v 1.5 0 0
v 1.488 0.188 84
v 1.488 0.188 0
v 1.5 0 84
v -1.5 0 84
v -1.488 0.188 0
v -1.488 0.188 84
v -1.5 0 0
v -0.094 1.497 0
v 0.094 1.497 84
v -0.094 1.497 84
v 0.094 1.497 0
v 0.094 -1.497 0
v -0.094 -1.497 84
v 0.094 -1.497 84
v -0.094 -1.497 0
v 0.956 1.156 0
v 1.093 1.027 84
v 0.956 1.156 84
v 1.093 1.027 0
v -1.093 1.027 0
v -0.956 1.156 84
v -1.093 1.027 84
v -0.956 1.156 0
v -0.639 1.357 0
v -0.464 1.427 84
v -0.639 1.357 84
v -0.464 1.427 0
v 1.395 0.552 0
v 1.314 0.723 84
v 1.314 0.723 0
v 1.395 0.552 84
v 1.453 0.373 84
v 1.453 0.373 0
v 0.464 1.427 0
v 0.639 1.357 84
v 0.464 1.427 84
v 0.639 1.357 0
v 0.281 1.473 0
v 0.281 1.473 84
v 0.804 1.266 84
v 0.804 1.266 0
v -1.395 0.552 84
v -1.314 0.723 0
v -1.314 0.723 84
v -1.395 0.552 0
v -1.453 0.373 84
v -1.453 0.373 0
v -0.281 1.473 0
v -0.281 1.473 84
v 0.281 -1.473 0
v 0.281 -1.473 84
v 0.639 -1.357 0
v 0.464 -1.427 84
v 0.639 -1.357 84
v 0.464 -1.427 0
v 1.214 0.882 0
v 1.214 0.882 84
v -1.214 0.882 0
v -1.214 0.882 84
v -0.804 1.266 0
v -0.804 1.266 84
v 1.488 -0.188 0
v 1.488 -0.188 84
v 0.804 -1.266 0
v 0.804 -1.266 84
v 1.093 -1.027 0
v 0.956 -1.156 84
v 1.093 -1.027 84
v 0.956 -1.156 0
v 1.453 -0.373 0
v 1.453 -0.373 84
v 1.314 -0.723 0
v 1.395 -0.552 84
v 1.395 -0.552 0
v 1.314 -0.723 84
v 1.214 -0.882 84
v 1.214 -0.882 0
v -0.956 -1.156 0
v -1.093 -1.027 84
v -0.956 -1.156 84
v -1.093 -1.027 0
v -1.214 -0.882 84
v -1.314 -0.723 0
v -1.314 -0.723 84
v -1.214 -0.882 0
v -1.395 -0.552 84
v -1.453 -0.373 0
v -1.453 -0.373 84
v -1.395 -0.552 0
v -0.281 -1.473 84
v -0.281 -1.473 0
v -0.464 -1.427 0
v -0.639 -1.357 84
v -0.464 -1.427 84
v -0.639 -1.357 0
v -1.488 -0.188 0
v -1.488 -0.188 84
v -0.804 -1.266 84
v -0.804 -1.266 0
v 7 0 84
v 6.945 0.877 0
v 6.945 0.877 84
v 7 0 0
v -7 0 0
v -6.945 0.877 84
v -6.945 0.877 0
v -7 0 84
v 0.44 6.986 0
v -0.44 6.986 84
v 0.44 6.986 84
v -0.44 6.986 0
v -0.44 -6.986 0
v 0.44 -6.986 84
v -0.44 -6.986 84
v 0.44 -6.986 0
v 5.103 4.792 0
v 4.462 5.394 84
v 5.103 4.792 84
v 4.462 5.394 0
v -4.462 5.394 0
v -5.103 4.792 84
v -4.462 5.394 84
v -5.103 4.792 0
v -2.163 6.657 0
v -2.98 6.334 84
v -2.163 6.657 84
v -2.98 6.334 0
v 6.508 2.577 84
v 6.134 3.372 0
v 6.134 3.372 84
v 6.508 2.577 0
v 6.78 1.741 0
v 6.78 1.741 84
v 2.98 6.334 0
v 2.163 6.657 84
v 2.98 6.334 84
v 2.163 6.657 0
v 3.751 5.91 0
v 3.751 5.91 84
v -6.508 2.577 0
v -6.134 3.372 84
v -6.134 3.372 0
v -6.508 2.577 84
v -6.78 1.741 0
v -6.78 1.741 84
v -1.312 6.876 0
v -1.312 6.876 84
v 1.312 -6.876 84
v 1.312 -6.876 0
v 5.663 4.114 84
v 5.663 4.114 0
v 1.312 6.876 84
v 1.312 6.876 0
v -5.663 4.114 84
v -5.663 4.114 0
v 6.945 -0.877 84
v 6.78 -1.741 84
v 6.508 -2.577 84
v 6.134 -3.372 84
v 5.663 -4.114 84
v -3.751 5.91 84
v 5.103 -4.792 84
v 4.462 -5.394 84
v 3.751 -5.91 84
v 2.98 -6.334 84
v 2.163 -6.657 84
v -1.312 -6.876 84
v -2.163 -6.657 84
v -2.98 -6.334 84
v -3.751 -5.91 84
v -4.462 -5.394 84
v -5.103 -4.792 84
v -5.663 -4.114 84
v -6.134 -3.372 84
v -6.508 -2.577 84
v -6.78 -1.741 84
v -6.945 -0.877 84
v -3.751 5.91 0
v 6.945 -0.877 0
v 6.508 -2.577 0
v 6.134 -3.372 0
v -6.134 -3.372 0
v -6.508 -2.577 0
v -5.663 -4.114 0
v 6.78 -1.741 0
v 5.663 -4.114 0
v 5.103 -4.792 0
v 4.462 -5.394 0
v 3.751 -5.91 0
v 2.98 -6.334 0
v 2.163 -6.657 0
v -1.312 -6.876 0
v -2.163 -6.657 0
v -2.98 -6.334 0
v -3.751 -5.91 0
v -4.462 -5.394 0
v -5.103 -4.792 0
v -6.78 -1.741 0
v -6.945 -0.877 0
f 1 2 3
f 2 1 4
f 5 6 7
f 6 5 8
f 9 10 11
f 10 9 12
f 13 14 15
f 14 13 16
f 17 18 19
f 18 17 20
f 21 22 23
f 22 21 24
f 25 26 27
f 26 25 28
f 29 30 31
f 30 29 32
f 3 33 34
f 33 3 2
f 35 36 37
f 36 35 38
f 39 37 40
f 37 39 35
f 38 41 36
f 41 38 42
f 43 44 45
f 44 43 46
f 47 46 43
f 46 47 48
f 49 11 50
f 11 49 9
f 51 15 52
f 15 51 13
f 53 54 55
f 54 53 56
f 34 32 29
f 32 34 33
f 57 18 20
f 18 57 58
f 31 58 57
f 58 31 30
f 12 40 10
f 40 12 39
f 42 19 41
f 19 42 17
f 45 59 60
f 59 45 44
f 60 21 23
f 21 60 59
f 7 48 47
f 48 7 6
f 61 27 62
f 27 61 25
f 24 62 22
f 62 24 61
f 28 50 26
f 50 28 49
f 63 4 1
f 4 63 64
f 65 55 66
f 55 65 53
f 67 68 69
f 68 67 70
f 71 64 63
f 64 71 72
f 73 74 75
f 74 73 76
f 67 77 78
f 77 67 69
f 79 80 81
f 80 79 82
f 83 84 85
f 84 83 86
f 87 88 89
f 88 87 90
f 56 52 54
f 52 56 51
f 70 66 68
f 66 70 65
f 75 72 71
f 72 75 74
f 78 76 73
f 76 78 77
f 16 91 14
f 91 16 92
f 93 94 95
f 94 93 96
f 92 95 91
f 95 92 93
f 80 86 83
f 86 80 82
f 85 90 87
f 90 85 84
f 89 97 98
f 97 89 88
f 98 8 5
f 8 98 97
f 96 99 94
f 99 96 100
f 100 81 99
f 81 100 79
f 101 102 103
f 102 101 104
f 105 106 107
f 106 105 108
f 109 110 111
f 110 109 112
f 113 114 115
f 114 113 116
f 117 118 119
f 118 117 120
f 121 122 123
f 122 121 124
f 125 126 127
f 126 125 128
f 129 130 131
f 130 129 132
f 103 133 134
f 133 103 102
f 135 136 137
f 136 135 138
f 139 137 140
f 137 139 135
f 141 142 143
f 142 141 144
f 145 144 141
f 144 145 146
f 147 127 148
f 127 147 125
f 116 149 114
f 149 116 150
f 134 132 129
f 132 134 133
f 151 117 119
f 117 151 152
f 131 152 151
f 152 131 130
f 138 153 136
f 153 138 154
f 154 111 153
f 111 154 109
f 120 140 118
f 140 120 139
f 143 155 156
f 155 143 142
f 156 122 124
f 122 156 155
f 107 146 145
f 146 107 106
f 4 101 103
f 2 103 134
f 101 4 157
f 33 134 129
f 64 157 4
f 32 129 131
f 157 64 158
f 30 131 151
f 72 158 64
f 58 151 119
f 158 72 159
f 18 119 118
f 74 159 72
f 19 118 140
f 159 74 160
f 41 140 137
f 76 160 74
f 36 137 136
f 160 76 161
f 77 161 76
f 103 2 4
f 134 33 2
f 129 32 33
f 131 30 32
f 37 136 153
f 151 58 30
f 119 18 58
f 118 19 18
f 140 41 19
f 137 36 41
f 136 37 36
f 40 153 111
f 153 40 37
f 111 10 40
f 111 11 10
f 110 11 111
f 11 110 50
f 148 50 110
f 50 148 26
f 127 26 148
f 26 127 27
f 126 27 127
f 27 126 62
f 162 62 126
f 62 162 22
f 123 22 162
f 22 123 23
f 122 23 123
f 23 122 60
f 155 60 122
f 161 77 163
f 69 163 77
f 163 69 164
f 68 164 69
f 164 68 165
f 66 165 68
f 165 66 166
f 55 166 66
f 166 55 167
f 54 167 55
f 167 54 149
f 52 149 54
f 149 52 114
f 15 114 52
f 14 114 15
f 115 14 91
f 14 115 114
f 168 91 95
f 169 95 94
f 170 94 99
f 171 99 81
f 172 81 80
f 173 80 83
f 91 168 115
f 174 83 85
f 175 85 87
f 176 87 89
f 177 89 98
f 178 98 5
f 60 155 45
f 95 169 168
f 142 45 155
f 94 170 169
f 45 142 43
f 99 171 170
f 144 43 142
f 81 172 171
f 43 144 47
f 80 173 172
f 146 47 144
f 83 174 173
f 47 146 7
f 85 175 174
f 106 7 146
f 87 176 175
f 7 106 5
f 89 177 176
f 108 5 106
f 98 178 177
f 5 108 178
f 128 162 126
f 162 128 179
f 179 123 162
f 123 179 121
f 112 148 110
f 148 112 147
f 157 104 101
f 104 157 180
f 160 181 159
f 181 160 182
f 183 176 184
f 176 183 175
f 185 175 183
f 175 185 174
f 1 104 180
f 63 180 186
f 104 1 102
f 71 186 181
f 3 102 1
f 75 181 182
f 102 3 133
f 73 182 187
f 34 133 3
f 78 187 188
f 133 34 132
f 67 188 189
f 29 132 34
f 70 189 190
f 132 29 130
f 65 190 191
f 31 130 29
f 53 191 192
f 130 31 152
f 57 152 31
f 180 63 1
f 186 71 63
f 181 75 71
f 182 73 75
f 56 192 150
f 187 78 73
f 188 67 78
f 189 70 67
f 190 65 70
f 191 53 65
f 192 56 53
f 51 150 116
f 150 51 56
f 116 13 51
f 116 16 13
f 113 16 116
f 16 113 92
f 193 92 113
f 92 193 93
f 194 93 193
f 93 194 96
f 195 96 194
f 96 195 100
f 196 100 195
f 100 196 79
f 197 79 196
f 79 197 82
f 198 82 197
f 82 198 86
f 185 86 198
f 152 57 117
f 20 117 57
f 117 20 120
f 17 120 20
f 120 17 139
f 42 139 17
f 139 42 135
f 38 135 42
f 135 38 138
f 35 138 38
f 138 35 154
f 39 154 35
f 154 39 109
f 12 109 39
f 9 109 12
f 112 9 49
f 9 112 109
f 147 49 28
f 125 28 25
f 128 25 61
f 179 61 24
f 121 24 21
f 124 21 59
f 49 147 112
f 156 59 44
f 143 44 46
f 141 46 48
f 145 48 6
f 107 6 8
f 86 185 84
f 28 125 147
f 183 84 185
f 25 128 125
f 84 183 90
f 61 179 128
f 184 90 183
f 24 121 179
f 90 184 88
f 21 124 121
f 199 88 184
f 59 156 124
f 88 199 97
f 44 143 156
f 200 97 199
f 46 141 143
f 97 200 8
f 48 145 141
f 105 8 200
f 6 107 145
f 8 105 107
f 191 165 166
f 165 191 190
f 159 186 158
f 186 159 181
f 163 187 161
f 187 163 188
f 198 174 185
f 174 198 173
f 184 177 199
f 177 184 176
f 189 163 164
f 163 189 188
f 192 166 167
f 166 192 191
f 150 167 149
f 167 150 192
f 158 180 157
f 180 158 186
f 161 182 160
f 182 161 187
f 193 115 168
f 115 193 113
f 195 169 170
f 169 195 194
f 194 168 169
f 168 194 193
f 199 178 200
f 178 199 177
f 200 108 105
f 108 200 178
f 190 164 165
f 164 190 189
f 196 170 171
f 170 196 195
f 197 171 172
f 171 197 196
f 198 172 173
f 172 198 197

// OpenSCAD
$fn = 50;


difference() {
	union() {
		cylinder(h = 84, r = 7.0000000000);
	}
	union() {
		translate(v = [0, 0, -100]) {
			cylinder(h = 200, r = 1.5000000000);
		}
		translate(v = [0, 0, -100]) {
			cylinder(h = 200, r = 1.5000000000);
		}
	}
}
